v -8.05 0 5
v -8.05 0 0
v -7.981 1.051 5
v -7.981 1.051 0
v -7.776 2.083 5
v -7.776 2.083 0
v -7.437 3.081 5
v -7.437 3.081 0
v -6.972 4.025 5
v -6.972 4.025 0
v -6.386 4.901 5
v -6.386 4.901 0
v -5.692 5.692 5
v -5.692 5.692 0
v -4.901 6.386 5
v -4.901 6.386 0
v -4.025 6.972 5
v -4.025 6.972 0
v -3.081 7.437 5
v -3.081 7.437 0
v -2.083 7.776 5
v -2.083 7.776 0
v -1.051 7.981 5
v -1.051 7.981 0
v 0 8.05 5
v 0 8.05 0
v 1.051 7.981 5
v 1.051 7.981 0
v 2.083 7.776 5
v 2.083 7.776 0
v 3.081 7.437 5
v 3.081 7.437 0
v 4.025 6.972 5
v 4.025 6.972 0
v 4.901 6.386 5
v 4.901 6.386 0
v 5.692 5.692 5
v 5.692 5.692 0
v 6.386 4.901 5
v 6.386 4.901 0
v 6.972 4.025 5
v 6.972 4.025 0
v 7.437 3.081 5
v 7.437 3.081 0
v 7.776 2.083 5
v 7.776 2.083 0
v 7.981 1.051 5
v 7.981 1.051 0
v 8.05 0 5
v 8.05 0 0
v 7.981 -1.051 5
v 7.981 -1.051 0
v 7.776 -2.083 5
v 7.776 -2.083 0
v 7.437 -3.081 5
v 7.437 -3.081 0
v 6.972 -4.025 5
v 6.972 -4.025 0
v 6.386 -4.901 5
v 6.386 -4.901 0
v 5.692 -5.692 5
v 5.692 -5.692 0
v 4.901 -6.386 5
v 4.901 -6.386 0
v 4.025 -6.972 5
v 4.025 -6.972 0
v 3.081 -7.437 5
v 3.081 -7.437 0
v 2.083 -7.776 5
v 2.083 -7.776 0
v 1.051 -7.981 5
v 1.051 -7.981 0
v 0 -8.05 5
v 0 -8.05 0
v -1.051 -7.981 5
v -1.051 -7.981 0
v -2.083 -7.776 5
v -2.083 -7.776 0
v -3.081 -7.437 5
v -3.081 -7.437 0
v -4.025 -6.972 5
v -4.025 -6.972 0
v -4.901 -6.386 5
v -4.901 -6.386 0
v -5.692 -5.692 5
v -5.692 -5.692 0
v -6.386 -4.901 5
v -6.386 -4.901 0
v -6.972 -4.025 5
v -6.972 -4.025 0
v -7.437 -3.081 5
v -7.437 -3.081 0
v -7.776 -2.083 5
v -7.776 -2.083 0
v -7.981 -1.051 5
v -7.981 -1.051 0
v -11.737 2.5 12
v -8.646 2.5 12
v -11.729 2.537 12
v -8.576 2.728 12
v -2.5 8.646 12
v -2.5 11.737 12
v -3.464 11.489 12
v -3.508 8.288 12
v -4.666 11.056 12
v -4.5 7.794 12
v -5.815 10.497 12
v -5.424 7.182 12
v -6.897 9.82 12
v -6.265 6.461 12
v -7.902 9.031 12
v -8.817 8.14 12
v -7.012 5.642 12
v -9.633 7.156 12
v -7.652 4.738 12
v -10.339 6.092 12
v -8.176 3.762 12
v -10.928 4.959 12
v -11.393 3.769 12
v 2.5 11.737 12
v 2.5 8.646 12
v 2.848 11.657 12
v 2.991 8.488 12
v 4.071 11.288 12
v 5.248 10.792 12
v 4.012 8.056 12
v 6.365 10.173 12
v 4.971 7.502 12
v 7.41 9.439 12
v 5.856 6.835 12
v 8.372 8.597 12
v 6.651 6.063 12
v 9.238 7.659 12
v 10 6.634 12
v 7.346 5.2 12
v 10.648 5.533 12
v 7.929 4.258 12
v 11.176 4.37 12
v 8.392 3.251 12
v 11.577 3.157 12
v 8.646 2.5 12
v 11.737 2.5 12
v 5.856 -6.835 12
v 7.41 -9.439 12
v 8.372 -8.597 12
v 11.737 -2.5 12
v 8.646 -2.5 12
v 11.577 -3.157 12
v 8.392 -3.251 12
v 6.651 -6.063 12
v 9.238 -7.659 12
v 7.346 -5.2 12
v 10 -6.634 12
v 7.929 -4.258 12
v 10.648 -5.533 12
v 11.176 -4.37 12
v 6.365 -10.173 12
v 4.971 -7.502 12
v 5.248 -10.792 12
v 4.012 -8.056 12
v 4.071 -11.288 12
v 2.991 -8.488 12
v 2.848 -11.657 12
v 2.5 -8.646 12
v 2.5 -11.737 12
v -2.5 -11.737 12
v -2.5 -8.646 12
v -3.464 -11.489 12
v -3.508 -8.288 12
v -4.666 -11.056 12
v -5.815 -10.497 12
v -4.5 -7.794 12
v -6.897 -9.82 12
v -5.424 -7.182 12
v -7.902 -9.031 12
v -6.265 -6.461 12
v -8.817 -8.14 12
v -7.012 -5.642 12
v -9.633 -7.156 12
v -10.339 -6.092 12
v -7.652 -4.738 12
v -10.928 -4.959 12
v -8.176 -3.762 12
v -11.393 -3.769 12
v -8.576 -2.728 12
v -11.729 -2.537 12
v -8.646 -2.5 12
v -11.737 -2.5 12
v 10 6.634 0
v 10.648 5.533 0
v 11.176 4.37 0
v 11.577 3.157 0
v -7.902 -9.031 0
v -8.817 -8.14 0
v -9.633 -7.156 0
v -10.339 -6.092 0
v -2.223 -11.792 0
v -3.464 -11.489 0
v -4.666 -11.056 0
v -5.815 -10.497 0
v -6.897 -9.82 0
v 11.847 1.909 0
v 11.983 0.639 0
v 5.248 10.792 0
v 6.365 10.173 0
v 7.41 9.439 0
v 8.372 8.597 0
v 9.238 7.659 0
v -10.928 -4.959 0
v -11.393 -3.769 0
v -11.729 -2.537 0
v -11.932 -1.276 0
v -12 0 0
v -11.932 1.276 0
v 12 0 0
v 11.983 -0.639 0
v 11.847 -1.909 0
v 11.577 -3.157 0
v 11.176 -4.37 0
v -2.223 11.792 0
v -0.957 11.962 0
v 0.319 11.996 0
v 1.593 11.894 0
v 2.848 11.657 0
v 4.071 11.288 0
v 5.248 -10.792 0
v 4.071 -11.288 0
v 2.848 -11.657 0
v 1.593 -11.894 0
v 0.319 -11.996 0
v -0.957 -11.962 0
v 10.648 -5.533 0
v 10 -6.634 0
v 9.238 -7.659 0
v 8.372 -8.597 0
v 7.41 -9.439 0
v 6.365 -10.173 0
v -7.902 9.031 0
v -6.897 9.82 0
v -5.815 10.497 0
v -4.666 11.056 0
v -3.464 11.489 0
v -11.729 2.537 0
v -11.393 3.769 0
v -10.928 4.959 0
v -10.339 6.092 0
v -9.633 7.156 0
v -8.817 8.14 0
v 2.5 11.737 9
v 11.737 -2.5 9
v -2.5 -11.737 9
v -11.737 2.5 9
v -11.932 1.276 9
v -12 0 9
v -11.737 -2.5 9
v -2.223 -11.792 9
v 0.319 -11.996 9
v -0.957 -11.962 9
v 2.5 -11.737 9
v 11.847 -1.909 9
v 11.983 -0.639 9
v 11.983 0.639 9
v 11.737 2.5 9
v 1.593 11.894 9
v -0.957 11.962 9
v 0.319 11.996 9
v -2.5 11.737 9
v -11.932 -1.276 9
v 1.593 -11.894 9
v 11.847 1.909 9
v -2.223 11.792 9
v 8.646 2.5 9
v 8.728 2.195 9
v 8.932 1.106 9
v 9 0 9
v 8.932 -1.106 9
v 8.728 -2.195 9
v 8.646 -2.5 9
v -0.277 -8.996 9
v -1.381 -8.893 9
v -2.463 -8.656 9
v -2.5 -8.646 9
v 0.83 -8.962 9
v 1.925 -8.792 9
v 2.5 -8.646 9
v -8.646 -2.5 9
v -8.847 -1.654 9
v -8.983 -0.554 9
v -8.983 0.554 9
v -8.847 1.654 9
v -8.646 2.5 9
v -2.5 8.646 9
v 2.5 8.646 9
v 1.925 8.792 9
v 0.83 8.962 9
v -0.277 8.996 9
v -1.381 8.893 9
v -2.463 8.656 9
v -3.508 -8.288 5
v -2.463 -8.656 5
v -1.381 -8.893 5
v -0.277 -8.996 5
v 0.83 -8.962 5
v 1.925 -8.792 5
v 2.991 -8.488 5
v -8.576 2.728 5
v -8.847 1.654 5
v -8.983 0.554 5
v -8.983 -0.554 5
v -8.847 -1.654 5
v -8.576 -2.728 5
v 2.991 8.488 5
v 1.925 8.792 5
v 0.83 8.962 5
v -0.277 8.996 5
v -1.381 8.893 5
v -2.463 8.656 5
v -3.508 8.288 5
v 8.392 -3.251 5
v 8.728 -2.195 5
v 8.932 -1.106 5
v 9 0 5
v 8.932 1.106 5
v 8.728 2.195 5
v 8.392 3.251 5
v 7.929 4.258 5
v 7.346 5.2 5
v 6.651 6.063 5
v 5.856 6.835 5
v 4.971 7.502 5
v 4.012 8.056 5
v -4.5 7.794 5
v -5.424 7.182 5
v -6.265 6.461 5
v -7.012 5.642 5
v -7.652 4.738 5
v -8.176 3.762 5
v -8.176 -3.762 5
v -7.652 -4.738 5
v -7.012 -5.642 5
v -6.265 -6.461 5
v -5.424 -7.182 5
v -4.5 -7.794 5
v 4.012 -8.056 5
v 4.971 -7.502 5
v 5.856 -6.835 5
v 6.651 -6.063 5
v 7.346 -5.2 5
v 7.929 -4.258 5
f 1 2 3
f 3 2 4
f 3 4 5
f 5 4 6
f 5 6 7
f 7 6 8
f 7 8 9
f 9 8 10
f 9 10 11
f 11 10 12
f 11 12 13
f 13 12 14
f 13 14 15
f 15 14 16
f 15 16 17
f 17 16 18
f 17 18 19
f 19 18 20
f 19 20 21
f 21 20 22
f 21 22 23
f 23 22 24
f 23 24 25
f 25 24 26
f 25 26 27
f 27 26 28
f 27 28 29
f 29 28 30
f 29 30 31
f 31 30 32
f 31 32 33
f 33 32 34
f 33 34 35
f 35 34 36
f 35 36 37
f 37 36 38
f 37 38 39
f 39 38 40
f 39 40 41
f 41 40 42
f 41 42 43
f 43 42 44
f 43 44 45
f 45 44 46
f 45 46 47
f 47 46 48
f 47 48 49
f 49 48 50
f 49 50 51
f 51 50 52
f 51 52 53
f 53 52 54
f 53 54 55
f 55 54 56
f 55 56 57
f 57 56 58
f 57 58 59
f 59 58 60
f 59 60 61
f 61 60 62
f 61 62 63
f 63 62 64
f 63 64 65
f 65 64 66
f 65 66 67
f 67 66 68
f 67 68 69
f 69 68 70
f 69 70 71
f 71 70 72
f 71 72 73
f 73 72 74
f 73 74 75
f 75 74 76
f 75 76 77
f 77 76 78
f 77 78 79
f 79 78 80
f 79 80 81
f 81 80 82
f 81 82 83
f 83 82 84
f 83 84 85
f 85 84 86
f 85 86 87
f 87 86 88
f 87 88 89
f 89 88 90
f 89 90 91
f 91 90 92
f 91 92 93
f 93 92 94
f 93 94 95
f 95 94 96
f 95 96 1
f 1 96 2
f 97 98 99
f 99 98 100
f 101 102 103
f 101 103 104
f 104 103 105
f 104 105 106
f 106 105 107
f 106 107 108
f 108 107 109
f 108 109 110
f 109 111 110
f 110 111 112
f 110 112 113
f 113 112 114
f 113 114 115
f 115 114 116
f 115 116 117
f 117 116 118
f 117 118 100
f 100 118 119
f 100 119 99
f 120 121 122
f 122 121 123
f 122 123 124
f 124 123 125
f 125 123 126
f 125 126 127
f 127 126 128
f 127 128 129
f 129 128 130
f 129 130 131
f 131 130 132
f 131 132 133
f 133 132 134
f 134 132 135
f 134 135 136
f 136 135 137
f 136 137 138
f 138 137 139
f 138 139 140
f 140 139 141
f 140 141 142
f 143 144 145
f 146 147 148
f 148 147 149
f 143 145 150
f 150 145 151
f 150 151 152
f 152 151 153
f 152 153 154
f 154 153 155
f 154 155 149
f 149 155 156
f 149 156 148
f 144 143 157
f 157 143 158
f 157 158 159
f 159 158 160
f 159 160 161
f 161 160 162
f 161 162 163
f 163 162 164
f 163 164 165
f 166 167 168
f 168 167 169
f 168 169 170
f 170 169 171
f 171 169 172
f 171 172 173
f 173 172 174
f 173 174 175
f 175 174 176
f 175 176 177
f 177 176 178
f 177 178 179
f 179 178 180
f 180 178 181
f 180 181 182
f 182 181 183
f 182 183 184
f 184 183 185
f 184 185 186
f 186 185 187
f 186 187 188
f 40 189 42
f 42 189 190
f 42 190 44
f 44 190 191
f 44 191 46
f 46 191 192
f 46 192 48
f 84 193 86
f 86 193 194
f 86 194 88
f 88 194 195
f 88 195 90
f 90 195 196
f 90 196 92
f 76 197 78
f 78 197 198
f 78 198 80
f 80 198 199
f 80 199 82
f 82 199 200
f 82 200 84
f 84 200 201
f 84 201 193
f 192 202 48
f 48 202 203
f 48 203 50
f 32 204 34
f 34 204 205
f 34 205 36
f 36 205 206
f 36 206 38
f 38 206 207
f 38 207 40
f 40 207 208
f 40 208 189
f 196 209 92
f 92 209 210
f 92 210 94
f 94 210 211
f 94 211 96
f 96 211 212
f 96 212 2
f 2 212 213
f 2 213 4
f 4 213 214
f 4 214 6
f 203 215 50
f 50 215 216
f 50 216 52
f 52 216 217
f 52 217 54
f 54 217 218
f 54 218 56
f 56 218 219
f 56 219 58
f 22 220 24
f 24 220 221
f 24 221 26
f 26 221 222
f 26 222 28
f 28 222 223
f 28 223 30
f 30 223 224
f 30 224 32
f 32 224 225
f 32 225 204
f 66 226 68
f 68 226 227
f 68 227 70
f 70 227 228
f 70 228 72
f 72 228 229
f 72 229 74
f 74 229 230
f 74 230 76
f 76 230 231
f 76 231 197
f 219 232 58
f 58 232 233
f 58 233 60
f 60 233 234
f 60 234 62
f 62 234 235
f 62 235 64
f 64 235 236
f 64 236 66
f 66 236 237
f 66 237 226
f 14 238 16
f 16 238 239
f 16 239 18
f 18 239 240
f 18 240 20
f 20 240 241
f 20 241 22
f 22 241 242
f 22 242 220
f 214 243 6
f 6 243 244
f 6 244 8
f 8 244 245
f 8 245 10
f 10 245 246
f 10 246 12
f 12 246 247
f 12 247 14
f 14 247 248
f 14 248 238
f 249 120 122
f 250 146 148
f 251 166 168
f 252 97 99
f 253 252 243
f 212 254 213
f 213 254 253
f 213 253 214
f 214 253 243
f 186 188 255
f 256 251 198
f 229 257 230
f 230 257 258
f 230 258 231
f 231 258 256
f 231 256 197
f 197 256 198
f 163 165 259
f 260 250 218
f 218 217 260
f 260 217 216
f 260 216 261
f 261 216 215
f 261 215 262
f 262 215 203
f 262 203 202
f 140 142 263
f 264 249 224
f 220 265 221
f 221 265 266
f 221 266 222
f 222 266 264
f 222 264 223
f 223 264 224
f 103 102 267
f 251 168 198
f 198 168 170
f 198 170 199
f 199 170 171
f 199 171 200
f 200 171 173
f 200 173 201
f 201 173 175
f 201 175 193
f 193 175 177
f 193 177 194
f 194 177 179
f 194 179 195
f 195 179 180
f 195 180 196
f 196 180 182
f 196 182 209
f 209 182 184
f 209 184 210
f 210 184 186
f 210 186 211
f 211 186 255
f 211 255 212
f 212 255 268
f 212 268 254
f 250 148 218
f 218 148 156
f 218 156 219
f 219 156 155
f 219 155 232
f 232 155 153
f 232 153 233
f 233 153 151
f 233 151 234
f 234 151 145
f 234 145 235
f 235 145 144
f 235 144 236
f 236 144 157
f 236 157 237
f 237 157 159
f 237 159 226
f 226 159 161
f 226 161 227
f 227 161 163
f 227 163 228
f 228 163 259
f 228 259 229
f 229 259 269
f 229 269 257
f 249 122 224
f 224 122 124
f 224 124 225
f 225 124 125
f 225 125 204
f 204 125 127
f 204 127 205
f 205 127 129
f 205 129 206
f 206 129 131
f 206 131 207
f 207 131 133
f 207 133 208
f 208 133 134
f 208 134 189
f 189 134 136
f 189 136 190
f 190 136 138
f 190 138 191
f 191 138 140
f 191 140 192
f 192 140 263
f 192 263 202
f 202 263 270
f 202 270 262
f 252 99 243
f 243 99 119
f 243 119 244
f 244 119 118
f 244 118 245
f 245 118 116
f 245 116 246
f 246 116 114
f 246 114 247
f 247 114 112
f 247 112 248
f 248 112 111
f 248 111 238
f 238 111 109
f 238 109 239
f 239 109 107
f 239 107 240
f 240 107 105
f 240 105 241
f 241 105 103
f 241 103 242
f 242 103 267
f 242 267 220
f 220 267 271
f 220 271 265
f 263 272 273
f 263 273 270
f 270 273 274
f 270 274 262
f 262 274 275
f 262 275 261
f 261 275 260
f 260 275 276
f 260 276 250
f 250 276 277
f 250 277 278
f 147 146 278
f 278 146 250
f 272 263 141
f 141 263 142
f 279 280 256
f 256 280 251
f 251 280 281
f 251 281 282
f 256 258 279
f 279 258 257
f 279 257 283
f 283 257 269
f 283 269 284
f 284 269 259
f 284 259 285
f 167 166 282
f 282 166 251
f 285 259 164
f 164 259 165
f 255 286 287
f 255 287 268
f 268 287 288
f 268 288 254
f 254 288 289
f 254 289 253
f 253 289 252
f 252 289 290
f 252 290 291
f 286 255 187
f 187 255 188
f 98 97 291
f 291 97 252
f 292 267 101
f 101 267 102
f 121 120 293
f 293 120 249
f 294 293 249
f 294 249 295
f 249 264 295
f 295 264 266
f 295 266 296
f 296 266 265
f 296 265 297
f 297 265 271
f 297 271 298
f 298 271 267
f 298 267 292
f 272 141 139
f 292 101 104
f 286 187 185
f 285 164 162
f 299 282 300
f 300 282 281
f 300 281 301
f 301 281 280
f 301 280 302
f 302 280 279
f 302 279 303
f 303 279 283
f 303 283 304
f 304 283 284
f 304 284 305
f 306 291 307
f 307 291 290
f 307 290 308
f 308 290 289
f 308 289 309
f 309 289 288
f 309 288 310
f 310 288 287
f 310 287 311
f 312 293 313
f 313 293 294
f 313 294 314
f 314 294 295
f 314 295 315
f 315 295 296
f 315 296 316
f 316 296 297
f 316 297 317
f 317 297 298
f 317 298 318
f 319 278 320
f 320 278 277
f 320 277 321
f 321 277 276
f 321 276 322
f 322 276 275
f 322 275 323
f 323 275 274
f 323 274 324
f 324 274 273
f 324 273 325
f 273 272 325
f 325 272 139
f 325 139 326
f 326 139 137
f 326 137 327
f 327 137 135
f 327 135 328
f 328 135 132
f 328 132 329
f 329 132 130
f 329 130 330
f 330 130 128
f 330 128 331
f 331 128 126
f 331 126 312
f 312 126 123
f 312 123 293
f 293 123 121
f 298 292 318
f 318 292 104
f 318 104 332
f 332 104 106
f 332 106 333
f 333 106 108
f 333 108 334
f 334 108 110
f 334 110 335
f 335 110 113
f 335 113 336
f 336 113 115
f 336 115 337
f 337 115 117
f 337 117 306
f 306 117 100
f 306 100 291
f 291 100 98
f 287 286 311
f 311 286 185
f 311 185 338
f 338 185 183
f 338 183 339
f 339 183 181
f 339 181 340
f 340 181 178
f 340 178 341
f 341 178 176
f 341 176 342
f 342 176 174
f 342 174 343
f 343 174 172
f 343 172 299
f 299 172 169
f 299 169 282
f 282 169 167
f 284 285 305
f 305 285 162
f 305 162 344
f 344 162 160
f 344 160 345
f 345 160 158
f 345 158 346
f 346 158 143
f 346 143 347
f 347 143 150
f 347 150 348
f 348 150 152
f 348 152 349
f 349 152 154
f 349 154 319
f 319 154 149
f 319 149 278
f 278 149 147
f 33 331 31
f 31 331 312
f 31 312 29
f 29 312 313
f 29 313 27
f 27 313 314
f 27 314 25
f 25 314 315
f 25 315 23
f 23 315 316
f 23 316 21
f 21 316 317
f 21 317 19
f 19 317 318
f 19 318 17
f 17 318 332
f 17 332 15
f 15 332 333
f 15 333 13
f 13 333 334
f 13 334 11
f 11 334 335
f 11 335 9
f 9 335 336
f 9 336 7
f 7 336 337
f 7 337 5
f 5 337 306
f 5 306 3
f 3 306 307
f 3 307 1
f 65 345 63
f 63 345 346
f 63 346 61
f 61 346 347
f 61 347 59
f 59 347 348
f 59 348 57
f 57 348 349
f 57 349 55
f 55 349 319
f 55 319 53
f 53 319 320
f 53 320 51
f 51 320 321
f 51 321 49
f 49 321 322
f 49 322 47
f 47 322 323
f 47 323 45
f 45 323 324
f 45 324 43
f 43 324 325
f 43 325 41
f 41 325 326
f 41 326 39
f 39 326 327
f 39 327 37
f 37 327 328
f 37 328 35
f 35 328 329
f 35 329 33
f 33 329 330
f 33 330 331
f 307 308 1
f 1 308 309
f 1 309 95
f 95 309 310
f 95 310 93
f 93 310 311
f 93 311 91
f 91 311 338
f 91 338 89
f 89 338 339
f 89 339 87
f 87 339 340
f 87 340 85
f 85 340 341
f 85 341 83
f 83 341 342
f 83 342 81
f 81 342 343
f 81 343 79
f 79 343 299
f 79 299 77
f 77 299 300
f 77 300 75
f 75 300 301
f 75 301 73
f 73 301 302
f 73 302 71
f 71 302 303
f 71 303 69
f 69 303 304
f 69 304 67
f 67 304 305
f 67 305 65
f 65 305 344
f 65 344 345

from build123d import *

# Parameters (mm, degrees)
SKETCH_1_R          = 12
SKETCH_1_R_2        = 8.05
EXTRUDE_1_DEPTH     = 12
CUT_EXTRUDE_1_DEPTH = 3
SKETCH_4_R          = 9
CUT_EXTRUDE_2_DEPTH = 7


with BuildPart() as part:
    # 草图1 → 凸台-拉伸1 (new body)
    with BuildSketch(Plane.XY):
        Circle(SKETCH_1_R)
        Circle(SKETCH_1_R_2, mode=Mode.SUBTRACT)
    extrude(amount=EXTRUDE_1_DEPTH)

    # 草图3 → 切除-拉伸1 (cut)
    with BuildSketch(Plane.XY.offset(12)):
        Polygon((-16.5, 2.5), (-2.5, 2.5), (-2.5, 16.5), (2.5, 16.5), (2.5, 2.5), (16.5, 2.5), (16.5, -2.5), (2.5, -2.5), (2.5, -16.5), (-2.5, -16.5), (-2.5, -2.5), (-16.5, -2.5), align=None)
    extrude(amount=-CUT_EXTRUDE_1_DEPTH, mode=Mode.SUBTRACT)

    # 草图4 → 切除-拉伸2 (cut)
    with BuildSketch(Plane.XY.offset(12)):
        Circle(SKETCH_4_R)
    extrude(amount=-CUT_EXTRUDE_2_DEPTH, mode=Mode.SUBTRACT)


solid = part.part
